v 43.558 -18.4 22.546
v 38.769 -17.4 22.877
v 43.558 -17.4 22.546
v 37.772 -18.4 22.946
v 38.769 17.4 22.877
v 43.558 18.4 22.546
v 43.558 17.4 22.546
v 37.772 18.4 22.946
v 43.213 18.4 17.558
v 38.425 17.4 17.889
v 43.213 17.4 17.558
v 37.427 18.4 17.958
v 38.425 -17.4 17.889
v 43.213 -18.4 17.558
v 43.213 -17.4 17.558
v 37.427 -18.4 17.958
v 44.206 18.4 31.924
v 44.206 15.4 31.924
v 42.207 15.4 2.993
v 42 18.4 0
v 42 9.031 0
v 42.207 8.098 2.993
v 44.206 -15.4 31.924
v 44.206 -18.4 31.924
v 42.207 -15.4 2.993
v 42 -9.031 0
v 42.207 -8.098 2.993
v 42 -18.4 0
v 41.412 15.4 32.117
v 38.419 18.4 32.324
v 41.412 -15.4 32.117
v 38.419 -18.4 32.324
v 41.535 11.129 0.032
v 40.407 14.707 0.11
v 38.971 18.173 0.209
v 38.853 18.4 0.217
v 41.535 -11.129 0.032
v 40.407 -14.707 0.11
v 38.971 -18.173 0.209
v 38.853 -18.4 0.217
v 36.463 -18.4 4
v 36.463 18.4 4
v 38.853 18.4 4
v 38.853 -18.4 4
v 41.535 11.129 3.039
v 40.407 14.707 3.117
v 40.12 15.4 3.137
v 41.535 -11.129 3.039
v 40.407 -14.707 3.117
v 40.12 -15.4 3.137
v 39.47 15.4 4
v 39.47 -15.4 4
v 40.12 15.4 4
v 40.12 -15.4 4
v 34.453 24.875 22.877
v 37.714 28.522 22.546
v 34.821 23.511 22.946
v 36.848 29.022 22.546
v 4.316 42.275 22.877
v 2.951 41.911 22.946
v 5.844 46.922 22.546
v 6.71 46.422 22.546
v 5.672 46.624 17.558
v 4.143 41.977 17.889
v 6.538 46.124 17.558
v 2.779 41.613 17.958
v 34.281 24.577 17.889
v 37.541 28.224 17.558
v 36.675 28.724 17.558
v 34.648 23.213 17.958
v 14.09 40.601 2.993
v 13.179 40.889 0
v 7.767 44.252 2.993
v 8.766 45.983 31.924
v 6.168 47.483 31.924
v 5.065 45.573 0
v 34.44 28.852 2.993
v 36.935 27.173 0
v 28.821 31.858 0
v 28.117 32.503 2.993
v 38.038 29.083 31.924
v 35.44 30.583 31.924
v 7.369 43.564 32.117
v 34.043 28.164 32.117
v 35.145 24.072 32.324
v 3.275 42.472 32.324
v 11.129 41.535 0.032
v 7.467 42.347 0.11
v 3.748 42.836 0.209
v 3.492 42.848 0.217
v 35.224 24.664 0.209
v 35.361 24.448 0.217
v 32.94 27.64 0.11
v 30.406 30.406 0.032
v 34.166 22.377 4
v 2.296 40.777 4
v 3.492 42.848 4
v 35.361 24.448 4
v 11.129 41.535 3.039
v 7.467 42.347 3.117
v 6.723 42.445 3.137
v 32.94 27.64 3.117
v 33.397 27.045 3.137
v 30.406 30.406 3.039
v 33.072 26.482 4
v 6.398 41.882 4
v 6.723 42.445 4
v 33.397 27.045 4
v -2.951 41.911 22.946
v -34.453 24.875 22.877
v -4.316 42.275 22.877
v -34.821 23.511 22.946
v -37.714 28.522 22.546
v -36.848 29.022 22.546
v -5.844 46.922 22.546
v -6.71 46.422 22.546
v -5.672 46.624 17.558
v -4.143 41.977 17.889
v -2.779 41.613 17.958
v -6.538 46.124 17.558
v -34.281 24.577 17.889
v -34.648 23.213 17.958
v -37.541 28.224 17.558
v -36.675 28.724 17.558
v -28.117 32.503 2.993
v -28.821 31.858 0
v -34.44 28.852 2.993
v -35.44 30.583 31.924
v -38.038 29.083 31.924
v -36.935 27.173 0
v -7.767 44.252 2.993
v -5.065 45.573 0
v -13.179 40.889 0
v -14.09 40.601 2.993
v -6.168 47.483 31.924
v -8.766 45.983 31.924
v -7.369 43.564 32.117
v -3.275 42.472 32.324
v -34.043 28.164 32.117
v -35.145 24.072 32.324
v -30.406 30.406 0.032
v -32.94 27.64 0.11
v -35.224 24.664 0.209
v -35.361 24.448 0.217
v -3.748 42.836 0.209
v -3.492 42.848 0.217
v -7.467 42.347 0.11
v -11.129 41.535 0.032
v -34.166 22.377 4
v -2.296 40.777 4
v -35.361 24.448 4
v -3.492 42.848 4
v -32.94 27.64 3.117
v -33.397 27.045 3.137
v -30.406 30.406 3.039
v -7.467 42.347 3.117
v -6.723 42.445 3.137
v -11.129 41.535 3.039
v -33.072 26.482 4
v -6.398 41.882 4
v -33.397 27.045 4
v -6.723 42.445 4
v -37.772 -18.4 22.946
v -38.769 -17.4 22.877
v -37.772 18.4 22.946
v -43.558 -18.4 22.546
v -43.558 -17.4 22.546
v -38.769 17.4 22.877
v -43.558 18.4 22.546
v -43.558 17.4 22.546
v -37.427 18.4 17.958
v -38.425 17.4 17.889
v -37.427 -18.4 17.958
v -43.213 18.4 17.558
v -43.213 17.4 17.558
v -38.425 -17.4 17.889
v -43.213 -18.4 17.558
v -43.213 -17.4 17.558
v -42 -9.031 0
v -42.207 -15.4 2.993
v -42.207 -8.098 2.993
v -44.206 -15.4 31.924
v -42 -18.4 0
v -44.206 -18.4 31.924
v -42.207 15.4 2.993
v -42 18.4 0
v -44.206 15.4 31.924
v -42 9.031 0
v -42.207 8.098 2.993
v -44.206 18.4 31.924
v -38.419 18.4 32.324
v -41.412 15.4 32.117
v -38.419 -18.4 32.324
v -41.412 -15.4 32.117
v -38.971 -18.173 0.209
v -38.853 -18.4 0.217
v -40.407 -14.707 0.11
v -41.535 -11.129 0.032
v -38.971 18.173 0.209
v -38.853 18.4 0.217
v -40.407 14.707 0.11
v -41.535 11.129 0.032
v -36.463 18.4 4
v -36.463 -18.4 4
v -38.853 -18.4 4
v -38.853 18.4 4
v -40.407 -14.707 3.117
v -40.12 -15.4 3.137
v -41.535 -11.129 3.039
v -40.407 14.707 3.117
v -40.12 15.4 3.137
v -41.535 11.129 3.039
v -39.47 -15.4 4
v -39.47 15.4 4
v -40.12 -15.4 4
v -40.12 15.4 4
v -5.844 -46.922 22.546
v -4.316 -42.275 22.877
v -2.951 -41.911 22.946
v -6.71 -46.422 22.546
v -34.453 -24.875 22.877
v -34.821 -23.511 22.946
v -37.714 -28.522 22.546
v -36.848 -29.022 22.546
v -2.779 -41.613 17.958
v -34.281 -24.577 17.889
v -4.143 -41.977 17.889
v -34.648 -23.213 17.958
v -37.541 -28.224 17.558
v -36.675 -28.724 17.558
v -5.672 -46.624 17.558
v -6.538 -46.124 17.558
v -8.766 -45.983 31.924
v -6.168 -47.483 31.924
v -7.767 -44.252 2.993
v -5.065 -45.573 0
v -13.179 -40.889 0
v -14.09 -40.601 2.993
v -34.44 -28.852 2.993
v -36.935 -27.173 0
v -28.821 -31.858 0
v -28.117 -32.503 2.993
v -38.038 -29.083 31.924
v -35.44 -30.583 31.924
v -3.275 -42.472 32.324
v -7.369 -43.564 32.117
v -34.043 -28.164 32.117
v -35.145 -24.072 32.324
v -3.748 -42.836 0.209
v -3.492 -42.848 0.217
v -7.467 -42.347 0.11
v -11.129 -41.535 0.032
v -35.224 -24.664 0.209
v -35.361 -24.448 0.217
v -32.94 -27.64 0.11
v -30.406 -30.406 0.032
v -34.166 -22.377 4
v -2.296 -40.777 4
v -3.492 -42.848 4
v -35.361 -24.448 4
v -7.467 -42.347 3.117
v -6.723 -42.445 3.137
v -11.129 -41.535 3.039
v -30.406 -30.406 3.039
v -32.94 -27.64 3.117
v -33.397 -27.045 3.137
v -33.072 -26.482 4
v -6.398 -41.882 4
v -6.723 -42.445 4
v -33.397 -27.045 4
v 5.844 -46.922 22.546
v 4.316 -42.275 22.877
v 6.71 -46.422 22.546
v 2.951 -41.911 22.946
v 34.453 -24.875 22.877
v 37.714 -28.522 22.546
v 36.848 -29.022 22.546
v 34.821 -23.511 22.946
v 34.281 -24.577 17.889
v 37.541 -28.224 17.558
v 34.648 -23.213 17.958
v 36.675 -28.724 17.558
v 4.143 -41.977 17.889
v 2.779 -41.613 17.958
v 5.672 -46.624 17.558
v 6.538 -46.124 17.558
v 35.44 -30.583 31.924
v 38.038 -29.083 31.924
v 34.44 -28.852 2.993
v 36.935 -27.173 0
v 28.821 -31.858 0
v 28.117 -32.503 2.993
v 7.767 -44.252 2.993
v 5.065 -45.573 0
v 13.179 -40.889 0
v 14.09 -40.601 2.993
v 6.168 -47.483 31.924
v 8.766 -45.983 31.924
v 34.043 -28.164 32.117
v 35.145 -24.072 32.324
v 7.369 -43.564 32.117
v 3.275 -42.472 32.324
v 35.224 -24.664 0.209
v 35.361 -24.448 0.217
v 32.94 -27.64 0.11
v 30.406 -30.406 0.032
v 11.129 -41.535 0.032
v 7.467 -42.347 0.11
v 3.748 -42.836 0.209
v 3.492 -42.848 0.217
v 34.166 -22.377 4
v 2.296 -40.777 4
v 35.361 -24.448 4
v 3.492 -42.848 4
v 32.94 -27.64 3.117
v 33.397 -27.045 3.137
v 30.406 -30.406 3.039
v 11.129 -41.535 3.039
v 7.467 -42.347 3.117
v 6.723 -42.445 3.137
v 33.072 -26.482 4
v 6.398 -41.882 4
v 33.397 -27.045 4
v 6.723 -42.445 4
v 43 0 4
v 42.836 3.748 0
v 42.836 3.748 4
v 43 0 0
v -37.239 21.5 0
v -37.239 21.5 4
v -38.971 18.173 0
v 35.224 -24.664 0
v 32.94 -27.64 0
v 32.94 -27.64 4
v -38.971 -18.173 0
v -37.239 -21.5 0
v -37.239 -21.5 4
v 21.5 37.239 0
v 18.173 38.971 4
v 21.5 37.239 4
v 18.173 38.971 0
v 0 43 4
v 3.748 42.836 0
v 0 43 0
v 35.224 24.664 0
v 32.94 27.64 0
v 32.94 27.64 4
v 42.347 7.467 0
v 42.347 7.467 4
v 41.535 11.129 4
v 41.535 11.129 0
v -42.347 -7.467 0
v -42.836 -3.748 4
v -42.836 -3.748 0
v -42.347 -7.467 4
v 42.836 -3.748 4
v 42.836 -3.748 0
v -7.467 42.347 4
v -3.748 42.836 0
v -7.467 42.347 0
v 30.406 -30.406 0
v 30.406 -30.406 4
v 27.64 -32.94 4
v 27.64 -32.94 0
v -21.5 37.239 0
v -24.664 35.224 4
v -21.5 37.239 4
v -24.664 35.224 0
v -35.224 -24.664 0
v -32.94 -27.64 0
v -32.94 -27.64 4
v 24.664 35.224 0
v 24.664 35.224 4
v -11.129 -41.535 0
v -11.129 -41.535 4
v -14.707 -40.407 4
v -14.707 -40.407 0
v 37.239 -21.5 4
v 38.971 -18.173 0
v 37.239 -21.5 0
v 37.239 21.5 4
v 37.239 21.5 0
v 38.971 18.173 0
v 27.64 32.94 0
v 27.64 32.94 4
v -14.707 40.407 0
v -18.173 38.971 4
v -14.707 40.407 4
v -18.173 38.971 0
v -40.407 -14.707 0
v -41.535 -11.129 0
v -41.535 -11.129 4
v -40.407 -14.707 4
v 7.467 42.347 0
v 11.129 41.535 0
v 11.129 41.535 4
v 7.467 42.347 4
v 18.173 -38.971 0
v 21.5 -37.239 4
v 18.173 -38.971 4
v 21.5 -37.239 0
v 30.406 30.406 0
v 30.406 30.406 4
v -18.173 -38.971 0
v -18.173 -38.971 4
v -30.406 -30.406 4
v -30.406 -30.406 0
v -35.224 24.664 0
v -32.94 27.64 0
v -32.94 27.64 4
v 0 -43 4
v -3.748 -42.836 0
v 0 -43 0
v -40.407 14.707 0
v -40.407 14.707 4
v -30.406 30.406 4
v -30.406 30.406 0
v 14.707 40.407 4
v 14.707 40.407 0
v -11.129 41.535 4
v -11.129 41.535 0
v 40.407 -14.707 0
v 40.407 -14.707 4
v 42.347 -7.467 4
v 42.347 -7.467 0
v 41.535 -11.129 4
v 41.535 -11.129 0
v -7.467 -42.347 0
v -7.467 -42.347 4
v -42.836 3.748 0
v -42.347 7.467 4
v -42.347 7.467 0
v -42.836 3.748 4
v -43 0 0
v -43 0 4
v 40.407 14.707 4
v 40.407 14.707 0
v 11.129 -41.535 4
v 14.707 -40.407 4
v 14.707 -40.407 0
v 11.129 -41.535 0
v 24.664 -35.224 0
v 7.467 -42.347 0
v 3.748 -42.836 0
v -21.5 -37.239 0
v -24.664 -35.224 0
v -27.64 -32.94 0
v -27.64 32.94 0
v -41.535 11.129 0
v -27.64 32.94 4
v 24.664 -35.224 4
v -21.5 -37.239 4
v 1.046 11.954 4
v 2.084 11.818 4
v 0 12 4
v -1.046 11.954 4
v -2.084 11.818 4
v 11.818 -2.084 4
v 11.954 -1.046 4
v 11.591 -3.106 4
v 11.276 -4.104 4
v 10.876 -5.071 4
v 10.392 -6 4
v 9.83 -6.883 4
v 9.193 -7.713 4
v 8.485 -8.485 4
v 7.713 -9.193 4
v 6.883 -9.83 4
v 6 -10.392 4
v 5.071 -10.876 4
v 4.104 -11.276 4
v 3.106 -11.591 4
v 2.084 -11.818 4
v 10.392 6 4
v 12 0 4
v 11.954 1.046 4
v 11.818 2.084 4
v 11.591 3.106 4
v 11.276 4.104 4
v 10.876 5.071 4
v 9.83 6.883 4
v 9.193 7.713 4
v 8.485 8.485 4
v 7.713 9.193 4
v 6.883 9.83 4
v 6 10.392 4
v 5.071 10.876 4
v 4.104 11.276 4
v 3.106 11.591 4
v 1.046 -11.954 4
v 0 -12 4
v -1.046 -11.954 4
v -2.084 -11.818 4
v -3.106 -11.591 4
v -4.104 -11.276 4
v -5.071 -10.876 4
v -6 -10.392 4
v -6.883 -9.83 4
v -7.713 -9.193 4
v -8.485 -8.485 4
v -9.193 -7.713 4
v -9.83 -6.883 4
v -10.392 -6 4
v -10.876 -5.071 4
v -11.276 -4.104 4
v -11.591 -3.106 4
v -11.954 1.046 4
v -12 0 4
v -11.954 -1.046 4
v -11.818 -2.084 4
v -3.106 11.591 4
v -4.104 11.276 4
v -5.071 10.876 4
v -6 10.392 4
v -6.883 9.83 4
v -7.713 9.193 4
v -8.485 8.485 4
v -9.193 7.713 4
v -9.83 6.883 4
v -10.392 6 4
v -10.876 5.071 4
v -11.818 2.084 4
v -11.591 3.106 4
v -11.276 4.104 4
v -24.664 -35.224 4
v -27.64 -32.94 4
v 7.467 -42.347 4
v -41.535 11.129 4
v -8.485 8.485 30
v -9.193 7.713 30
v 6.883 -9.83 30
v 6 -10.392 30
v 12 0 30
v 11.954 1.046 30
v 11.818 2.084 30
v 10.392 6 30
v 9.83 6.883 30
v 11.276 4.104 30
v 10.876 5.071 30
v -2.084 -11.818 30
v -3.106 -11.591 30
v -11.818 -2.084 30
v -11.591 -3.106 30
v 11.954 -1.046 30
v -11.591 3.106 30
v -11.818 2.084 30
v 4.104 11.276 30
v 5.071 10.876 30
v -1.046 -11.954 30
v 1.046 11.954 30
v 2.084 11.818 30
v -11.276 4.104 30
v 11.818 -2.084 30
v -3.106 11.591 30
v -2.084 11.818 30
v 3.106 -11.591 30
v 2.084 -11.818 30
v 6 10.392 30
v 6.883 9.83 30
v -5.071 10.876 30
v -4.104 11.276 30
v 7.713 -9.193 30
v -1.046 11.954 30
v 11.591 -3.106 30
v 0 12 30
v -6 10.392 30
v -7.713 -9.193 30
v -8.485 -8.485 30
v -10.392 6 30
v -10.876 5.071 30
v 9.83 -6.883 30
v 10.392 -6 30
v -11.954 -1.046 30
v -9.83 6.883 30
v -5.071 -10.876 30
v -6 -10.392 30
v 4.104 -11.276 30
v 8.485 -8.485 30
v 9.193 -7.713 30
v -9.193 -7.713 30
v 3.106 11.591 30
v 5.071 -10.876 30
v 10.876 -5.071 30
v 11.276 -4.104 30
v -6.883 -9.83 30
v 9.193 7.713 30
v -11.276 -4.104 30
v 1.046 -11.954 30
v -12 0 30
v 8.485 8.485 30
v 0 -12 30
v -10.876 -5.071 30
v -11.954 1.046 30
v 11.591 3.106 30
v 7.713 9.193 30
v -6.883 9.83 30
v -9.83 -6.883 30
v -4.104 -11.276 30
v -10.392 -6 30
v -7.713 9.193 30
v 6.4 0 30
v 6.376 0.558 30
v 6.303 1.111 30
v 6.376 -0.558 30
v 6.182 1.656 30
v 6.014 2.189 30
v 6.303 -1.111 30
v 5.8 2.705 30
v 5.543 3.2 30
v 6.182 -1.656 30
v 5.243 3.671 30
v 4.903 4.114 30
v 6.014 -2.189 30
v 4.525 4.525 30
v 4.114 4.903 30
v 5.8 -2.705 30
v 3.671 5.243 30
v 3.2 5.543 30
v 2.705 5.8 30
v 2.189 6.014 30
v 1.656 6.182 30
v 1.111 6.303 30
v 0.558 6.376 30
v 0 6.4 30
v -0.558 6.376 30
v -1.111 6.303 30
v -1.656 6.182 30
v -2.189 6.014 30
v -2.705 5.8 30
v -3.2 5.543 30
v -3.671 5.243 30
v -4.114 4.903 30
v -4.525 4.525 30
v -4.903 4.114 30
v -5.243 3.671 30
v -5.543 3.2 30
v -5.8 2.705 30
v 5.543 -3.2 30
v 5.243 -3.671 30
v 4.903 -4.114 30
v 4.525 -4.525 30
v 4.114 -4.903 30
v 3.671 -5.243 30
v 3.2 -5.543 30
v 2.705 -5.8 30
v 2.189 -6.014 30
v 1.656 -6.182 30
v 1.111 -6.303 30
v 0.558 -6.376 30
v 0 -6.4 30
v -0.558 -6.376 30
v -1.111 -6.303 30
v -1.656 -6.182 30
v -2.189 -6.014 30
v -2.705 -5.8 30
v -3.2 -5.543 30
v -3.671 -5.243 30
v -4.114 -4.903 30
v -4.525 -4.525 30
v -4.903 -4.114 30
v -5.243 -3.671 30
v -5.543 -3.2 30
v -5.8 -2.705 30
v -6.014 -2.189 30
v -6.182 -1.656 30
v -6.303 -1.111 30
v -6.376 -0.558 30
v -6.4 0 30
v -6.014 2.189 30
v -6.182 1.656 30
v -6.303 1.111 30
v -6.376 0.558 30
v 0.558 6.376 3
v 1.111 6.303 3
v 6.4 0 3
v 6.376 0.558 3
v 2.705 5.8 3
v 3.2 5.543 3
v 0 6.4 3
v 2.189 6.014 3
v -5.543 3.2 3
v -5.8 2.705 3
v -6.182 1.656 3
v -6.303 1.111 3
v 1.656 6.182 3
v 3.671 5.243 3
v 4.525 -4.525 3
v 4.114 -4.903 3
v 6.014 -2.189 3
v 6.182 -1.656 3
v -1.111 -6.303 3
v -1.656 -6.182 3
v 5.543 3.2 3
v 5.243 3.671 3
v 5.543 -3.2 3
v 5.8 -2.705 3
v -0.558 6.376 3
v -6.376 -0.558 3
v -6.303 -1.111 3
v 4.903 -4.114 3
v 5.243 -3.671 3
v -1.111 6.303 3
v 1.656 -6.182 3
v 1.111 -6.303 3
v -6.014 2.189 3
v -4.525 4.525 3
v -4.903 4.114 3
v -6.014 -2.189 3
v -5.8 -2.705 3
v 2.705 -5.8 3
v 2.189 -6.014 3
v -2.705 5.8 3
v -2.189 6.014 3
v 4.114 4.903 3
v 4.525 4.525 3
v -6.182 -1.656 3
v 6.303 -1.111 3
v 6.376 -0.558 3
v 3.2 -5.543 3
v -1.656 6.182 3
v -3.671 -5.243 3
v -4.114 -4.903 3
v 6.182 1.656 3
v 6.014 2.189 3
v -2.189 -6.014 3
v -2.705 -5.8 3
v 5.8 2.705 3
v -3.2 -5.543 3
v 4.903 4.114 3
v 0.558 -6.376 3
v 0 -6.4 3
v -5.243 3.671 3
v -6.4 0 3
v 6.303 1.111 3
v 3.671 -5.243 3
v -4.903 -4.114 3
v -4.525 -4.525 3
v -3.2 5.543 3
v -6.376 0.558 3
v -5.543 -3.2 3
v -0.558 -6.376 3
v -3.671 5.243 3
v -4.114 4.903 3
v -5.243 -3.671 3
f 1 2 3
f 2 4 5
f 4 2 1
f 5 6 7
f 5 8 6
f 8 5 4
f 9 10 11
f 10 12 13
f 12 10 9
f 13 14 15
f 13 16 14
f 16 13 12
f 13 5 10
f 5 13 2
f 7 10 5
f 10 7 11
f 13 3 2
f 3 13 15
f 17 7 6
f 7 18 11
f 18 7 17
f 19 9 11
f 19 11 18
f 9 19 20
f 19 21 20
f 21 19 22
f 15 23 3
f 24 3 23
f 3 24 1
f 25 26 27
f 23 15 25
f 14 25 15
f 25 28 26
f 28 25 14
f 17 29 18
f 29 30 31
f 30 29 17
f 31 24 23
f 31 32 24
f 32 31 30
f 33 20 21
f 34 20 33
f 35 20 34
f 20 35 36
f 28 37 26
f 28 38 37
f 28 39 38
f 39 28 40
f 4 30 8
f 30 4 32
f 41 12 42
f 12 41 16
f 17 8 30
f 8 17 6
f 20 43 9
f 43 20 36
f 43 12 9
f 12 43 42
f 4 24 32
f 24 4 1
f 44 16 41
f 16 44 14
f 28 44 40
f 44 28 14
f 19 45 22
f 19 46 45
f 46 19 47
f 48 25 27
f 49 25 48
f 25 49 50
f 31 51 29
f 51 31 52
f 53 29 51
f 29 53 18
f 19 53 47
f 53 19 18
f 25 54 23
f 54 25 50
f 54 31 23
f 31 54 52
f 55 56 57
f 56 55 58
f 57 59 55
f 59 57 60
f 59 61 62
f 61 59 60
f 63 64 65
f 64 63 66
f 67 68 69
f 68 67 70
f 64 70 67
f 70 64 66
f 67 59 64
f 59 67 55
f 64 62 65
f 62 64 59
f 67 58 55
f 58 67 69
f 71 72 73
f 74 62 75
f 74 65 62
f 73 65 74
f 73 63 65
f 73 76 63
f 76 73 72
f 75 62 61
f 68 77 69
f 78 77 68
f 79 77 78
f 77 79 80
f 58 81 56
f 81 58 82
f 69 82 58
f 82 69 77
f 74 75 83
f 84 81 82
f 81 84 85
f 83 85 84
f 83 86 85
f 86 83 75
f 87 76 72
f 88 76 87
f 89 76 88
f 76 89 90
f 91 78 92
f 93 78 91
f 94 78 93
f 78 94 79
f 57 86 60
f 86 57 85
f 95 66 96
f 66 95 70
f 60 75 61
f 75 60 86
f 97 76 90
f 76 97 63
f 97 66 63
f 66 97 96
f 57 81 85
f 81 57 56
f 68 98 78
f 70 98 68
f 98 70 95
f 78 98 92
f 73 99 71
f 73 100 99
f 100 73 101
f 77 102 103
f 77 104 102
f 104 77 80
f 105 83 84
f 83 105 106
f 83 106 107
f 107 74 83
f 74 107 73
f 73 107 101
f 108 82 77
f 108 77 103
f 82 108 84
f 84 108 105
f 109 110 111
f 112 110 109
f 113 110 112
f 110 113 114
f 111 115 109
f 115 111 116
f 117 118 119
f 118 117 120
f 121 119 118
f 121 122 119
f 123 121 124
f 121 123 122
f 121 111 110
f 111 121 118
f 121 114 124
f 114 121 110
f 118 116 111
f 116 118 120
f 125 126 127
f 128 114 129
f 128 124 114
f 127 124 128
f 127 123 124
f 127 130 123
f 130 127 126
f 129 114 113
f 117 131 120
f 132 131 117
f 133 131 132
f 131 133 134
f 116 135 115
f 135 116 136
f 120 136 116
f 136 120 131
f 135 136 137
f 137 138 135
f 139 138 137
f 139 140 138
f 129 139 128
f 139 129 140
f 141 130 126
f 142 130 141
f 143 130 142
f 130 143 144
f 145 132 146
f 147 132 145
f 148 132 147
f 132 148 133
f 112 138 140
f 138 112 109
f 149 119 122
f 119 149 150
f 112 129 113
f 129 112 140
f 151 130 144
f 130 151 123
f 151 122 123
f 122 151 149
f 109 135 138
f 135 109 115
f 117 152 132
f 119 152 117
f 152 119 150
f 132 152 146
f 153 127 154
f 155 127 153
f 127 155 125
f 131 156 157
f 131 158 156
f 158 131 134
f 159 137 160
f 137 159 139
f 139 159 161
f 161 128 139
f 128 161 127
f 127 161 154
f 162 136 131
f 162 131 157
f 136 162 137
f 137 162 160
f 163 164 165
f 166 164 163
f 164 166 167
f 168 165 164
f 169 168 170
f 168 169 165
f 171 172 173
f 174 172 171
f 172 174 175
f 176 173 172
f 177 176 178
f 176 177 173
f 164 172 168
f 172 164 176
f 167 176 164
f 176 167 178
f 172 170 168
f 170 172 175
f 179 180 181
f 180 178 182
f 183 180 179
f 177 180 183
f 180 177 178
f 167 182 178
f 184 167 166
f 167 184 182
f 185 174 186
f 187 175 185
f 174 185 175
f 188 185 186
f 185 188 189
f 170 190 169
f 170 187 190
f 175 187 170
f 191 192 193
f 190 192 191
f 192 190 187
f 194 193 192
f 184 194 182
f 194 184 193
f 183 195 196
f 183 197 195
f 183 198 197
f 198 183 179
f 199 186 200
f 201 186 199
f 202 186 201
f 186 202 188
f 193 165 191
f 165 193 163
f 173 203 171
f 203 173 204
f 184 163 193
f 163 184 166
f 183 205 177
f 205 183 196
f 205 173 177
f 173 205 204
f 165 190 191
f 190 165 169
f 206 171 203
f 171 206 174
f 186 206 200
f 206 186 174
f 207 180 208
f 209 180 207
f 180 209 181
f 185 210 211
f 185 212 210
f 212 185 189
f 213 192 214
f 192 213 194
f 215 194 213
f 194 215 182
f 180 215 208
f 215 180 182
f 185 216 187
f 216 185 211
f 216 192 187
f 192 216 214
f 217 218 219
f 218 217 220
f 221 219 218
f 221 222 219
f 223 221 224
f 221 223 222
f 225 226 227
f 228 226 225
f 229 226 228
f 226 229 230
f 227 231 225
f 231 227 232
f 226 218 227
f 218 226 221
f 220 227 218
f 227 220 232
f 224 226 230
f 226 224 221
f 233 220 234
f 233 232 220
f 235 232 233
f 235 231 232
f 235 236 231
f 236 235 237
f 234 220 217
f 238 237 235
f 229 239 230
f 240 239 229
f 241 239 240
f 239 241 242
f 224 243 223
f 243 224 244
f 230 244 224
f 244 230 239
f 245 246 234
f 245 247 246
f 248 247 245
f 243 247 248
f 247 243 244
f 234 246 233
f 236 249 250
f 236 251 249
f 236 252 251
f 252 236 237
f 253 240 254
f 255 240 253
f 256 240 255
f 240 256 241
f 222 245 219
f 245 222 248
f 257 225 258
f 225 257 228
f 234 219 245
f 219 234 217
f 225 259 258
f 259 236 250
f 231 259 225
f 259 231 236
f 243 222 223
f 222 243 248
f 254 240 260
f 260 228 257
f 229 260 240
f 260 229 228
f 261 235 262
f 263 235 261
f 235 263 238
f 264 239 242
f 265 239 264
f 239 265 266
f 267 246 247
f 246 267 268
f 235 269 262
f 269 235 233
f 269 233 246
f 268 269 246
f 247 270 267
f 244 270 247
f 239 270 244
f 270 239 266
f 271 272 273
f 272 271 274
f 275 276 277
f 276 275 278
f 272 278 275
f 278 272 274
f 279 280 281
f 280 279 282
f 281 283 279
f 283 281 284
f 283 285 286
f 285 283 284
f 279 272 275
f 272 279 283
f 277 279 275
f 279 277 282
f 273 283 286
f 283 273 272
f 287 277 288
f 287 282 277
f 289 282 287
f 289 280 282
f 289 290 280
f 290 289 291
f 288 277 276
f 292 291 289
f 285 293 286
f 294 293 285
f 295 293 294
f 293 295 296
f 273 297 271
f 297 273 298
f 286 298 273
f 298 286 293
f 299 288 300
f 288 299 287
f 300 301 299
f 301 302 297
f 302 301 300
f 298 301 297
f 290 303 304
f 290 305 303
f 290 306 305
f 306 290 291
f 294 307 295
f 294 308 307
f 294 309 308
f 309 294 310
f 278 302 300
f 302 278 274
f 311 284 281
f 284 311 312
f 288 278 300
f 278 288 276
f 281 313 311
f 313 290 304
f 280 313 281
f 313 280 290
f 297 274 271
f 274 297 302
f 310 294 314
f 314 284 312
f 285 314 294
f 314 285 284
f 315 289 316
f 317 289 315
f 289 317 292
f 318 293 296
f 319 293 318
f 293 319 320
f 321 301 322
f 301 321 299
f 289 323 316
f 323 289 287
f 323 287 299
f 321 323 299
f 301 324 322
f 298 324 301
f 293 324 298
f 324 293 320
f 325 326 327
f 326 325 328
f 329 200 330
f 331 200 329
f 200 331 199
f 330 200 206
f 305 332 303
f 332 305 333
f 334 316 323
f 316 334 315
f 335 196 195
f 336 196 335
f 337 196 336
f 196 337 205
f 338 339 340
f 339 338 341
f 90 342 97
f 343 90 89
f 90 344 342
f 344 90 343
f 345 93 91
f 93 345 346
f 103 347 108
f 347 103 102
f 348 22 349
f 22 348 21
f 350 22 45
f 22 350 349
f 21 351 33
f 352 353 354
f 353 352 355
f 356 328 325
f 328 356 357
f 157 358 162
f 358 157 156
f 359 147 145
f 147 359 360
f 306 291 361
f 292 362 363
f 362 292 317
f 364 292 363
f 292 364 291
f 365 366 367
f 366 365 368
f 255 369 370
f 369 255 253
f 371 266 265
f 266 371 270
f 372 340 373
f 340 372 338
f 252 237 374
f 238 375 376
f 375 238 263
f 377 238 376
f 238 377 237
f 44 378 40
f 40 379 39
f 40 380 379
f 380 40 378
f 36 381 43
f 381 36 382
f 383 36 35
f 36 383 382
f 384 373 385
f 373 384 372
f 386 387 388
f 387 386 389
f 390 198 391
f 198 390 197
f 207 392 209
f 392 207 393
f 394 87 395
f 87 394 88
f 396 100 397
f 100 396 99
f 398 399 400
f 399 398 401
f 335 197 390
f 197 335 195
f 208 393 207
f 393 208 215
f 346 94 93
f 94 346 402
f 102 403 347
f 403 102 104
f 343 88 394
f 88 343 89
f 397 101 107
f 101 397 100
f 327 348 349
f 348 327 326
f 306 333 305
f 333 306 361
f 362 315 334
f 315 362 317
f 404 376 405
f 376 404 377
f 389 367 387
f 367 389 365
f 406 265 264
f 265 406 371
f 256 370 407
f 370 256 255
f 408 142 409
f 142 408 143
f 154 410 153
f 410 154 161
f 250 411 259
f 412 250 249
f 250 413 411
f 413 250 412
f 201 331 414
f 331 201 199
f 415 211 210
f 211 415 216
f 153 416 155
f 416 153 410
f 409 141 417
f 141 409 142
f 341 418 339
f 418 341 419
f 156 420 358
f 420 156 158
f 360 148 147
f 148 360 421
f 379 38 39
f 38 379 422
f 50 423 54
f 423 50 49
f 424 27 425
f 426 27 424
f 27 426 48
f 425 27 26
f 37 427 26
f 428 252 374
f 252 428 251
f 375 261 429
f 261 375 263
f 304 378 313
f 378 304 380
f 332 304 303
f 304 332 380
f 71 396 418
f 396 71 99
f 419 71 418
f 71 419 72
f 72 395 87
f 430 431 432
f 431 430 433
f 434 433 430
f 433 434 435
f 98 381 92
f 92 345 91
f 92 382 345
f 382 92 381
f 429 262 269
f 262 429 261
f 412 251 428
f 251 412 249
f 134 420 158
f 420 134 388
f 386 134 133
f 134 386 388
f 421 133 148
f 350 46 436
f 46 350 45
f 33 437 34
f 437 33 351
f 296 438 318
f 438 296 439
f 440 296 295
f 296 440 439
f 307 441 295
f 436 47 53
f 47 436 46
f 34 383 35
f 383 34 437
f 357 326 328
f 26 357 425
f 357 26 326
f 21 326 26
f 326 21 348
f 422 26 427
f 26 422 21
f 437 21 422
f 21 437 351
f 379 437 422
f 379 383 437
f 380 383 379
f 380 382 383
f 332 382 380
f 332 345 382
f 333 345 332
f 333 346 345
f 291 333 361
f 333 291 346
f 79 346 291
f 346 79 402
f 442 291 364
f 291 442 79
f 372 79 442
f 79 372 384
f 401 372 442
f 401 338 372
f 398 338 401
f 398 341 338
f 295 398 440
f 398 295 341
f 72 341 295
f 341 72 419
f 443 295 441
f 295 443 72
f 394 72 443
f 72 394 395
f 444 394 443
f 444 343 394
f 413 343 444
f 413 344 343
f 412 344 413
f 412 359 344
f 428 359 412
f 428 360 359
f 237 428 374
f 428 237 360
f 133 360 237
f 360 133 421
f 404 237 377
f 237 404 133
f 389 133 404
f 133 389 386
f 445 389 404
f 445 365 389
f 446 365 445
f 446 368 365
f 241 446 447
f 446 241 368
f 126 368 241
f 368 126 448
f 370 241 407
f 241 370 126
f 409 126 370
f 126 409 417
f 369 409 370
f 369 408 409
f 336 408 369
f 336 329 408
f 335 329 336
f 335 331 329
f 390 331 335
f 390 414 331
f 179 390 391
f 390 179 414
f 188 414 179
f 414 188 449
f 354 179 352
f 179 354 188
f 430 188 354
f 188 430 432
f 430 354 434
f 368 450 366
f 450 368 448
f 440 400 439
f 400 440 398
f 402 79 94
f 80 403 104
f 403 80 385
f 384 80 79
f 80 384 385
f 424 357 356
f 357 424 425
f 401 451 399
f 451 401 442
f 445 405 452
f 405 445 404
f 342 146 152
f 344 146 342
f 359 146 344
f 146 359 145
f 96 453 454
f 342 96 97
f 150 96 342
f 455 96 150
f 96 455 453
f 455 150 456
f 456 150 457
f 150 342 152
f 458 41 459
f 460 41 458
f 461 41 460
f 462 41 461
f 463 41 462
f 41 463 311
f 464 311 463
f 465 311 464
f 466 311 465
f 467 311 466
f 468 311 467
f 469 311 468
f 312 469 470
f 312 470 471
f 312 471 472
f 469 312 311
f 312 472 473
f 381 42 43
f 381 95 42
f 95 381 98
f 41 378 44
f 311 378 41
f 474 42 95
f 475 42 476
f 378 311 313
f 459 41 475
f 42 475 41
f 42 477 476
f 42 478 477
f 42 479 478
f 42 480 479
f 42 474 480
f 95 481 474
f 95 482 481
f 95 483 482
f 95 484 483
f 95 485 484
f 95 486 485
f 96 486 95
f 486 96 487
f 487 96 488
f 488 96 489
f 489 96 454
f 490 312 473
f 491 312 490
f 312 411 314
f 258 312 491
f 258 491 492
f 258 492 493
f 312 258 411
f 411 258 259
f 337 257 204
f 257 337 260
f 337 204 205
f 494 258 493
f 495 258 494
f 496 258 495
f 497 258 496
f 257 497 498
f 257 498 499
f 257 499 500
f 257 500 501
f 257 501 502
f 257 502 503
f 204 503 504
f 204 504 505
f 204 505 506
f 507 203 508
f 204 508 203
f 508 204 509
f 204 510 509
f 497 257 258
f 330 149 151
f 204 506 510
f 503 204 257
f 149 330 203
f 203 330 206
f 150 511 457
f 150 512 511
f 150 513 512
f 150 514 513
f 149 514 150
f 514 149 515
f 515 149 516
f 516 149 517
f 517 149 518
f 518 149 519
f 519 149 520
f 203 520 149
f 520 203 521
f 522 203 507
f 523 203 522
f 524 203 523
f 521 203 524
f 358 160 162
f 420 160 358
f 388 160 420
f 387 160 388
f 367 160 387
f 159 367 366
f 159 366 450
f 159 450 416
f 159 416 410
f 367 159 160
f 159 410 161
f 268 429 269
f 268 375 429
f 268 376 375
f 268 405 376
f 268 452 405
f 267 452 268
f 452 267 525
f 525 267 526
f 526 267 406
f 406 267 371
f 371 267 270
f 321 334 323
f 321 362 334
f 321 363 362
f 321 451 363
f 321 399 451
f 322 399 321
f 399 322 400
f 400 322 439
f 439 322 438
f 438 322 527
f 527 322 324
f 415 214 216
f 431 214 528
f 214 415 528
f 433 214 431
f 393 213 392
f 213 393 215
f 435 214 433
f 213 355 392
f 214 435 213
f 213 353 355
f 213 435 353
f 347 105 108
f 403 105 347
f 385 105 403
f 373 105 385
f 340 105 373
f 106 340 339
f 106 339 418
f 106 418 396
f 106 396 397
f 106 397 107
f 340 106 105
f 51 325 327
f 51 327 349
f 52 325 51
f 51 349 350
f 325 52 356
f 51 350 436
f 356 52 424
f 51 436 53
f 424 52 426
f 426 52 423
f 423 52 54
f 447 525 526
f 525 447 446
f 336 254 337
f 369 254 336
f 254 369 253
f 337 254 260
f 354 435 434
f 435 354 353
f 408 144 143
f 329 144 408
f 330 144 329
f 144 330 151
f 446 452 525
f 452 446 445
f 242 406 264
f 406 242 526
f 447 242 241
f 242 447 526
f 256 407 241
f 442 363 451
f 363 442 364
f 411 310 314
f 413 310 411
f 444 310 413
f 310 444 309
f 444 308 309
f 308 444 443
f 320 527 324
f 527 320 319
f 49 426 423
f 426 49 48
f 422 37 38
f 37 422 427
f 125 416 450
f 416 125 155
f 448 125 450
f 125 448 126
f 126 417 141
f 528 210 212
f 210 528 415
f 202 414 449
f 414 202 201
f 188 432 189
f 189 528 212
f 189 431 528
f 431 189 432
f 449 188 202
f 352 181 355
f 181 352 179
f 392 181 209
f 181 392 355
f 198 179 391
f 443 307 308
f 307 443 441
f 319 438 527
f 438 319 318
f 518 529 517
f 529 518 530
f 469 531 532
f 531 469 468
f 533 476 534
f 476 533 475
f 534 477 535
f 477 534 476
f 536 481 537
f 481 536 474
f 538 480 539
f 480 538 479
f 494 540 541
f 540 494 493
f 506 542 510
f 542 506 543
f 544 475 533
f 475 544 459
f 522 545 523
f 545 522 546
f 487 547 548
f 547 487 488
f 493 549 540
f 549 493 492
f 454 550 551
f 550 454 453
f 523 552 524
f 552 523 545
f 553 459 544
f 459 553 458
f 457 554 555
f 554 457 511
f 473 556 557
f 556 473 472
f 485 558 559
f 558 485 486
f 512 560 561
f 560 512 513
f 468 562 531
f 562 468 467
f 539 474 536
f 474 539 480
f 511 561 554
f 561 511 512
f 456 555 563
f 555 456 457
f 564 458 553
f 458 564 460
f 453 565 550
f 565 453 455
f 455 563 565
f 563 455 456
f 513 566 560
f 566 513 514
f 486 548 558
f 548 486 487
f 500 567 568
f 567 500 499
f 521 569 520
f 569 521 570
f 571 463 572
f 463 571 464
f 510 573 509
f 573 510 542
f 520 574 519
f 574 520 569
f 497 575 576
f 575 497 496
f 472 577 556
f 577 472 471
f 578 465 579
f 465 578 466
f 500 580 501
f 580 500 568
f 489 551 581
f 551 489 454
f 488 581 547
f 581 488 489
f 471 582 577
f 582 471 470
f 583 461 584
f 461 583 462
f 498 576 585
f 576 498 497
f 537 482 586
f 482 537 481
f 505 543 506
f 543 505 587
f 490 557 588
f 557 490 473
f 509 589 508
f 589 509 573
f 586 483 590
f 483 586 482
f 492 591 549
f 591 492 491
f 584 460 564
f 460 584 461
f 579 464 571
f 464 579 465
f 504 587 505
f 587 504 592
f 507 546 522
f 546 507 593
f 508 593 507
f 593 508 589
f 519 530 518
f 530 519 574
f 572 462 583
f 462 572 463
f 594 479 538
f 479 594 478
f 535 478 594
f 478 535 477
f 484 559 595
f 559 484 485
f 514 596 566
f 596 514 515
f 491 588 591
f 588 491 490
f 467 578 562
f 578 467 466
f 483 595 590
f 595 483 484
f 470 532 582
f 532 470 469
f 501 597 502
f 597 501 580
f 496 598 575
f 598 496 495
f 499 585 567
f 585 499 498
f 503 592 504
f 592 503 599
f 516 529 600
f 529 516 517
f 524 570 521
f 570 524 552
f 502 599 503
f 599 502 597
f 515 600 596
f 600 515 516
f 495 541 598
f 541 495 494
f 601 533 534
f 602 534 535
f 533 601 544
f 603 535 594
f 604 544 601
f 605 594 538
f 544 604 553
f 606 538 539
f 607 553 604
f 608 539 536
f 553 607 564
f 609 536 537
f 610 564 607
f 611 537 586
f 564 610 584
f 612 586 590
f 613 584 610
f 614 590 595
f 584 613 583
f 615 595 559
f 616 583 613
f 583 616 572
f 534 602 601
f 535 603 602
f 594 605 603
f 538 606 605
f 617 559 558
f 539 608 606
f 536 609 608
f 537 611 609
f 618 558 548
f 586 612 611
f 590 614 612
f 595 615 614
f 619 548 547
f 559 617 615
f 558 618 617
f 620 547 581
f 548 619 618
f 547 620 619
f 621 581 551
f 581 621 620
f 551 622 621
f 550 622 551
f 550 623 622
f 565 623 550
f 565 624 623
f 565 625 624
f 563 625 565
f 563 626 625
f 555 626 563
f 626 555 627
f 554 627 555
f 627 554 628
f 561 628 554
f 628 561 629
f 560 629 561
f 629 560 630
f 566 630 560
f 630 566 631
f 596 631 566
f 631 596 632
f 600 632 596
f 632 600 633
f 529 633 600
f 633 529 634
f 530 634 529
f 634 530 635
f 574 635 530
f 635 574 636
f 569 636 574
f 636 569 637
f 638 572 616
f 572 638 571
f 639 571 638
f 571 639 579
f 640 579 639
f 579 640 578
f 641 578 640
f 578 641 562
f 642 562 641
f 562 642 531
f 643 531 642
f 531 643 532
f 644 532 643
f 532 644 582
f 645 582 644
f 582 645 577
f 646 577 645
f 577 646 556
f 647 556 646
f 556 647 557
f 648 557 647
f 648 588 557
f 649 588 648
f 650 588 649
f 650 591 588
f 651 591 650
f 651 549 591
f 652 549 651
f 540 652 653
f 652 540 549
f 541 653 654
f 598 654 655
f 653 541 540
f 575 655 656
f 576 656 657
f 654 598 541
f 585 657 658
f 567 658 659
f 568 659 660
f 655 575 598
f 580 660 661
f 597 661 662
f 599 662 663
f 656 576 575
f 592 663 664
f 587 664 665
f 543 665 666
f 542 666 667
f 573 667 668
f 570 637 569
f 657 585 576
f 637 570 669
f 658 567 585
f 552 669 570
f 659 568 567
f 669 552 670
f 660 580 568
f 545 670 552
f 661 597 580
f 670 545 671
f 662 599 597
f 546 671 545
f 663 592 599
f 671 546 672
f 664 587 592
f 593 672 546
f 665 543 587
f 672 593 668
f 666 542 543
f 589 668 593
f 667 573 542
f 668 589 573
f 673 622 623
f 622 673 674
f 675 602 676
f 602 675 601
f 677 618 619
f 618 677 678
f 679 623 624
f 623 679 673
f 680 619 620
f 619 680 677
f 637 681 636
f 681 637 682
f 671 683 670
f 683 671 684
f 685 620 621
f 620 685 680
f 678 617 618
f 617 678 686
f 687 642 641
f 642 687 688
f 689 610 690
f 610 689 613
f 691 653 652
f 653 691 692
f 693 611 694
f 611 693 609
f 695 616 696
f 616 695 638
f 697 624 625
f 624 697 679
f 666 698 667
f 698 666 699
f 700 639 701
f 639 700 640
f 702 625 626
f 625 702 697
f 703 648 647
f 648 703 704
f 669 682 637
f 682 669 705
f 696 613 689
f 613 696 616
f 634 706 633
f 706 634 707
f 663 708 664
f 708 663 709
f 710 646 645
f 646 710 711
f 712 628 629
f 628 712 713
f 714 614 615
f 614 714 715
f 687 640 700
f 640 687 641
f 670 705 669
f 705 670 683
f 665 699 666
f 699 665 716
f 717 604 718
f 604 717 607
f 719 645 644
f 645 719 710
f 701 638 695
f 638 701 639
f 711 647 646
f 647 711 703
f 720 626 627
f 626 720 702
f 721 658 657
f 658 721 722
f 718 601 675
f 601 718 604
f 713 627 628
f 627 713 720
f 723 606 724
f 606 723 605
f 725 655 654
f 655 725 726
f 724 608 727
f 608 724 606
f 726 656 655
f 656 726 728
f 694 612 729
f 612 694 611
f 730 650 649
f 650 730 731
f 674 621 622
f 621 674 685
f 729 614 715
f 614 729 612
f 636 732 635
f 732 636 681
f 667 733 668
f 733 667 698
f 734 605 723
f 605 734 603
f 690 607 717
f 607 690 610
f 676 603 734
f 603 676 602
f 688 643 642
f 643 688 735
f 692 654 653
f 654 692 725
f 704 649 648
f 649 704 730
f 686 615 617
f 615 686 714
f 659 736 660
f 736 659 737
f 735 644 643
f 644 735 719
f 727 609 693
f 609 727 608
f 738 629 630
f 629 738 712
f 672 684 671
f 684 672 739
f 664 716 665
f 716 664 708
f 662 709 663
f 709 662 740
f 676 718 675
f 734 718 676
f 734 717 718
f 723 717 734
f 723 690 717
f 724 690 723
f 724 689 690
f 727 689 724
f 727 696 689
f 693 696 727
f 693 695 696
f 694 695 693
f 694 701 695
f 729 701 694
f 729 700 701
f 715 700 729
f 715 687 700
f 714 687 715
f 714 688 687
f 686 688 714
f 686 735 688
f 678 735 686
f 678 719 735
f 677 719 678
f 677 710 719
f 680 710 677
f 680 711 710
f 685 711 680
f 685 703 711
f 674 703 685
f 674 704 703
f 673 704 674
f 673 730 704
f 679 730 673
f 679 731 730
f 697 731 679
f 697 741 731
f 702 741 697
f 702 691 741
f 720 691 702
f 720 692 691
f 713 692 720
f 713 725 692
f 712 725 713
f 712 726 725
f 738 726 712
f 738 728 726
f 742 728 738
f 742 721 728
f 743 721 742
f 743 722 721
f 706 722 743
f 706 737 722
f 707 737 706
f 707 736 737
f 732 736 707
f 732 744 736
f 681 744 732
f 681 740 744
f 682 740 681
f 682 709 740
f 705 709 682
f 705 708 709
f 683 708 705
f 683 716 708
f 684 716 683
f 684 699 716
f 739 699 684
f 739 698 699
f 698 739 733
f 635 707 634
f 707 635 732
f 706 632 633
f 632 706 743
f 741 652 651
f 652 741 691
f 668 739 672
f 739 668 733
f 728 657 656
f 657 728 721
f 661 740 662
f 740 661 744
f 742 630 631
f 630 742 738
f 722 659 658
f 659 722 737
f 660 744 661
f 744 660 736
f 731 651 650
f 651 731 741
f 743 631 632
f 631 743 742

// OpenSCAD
// file: lib.scad
// Shared pieces for the Winterlight PETG parts (Bambu Lab A1, 256 × 256 × 256 mm).
// Millimetres. Measure your own mounting strip and set strip_w / strip_t on the
// command line (-D strip_w=20) or in OpenSCAD's Customizer before printing.
$fn = 72;
strip_w = 30;   // pixel mounting strip width
strip_t = 2;    // pixel mounting strip thickness
clr = 0.4;      // clearance per side, a snug slide fit in PETG
wall = 3;       // channel walls
tie_d = 4.5;    // holes for the 2.5 mm cable ties or an M4 bolt

slot_t = strip_t + 2*clr;
slot_w = strip_w + 2*clr;
// Outside size of a strip channel: radial depth and tangential width.
ch_depth = slot_t + wall;
ch_width = slot_w + 2*wall;

// A channel that holds a strip's end: the strip runs up +Z with its face
// (and its pixels) towards +X. Open on the +X side so the strip drops in,
// with a groove round the outside where a cable tie pulls it home.
module channel(h, floor = 3) {
  z0 = h*0.55;
  difference() {
    translate([-ch_depth, -ch_width/2, 0]) cube([ch_depth, ch_width, h]);
    translate([-slot_t, -slot_w/2, floor]) cube([slot_t + 1, slot_w, h]);
    // Tie groove, 1 mm deep, round the back and both sides.
    difference() {
      translate([-ch_depth - 1, -ch_width/2 - 1, z0]) cube([ch_depth + 2, ch_width + 2, 5]);
      translate([-ch_depth + 1, -ch_width/2 + 1, z0 - 1]) cube([ch_depth + 2, ch_width - 2, 7]);
    }
  }
}

// n channels on a circle of radius r (the strip's face), leaning by tilt
// degrees: positive leans the top inwards, negative outwards.
module channel_ring(n, r, tilt, h, start = 0) {
  intersection() {
    for (i = [0 : n - 1]) rotate([0, 0, start + 360*i/n])
      translate([r, 0, 0]) rotate([0, -tilt, 0]) channel(h);
    translate([-1000, -1000, 0]) cube([2000, 2000, 1000]);
  }
}

// A flat ring with spokes to a centre boss: the plate that ties the channels together.
module spoked_ring(r_out, r_in, t, n, boss_d, arm_w = 8) {
  difference() { cylinder(r = r_out, h = t); translate([0, 0, -1]) cylinder(r = r_in, h = t + 2); }
  for (i = [0 : n - 1]) rotate([0, 0, 360*i/n + 180/n]) translate([0, -arm_w/2, 0]) cube([r_in + 1, arm_w, t]);
  cylinder(d = boss_d, h = t);
}

// Bricks for ballast: the paving in front of the house is stone, so nothing
// can be staked into it. The feet are trays that hold standard concrete paving
// bricks (betonklinkers, 22 × 11 × 8 cm, about 4 kg each). Set your own size.
brick_l = 220;
brick_w = 110;
brick_h = 80;
brick_clr = 3;      // bricks vary a few millimetres
tray_wall = 1.6;
tray_h = 20;
tray_lip = 10;      // the floor is only a ledge round the edge, to save PETG
tray_floor = 1.6;

// A tray for n bricks side by side along Y, its corner at the origin.
// gap: extra room between the bricks (for a rib); returns nothing, see tray_size.
function tray_inner(n = 1, gap = 0) = [brick_l + 2*brick_clr, n*(brick_w + 2*brick_clr) + gap];
module tray(n = 1, gap = 0) {
  in = tray_inner(n, gap);
  out = [in[0] + 2*tray_wall, in[1] + 2*tray_wall];
  difference() {
    cube([out[0], out[1], tray_h]);
    translate([tray_wall, tray_wall, tray_floor]) cube([in[0], in[1], tray_h]);
    translate([tray_wall + tray_lip, tray_wall + tray_lip, -1]) cube([in[0] - 2*tray_lip, in[1] - 2*tray_lip, tray_floor + 2]);
  }
}
// main file
// Mini tree, top cap. Printed upside down: the flat top on the plate and the
// six channels pointing up (down in use, where the spokes come in from below).
// The centre hole takes the top of the 8 mm rod. No supports.
include <lib.scad>
spokes = 6;
r_base = 80;
r_top = 42;
height = 550;
rod_d = 12;      // centre rod: 10–12 mm bamboo cane
ch_h = 32;
tilt = atan((r_base - r_top)/height);
plate = 4;

difference() {
  union() {
    cylinder(r = r_top + 1, h = plate);
    cylinder(d = rod_d + 12, h = 30);
    // In print the channels lean outwards: in use they lean in towards the tip.
    channel_ring(spokes, r_top, -tilt, ch_h);
  }
  translate([0, 0, 3]) cylinder(d = rod_d + 2*clr, h = 30);
}
